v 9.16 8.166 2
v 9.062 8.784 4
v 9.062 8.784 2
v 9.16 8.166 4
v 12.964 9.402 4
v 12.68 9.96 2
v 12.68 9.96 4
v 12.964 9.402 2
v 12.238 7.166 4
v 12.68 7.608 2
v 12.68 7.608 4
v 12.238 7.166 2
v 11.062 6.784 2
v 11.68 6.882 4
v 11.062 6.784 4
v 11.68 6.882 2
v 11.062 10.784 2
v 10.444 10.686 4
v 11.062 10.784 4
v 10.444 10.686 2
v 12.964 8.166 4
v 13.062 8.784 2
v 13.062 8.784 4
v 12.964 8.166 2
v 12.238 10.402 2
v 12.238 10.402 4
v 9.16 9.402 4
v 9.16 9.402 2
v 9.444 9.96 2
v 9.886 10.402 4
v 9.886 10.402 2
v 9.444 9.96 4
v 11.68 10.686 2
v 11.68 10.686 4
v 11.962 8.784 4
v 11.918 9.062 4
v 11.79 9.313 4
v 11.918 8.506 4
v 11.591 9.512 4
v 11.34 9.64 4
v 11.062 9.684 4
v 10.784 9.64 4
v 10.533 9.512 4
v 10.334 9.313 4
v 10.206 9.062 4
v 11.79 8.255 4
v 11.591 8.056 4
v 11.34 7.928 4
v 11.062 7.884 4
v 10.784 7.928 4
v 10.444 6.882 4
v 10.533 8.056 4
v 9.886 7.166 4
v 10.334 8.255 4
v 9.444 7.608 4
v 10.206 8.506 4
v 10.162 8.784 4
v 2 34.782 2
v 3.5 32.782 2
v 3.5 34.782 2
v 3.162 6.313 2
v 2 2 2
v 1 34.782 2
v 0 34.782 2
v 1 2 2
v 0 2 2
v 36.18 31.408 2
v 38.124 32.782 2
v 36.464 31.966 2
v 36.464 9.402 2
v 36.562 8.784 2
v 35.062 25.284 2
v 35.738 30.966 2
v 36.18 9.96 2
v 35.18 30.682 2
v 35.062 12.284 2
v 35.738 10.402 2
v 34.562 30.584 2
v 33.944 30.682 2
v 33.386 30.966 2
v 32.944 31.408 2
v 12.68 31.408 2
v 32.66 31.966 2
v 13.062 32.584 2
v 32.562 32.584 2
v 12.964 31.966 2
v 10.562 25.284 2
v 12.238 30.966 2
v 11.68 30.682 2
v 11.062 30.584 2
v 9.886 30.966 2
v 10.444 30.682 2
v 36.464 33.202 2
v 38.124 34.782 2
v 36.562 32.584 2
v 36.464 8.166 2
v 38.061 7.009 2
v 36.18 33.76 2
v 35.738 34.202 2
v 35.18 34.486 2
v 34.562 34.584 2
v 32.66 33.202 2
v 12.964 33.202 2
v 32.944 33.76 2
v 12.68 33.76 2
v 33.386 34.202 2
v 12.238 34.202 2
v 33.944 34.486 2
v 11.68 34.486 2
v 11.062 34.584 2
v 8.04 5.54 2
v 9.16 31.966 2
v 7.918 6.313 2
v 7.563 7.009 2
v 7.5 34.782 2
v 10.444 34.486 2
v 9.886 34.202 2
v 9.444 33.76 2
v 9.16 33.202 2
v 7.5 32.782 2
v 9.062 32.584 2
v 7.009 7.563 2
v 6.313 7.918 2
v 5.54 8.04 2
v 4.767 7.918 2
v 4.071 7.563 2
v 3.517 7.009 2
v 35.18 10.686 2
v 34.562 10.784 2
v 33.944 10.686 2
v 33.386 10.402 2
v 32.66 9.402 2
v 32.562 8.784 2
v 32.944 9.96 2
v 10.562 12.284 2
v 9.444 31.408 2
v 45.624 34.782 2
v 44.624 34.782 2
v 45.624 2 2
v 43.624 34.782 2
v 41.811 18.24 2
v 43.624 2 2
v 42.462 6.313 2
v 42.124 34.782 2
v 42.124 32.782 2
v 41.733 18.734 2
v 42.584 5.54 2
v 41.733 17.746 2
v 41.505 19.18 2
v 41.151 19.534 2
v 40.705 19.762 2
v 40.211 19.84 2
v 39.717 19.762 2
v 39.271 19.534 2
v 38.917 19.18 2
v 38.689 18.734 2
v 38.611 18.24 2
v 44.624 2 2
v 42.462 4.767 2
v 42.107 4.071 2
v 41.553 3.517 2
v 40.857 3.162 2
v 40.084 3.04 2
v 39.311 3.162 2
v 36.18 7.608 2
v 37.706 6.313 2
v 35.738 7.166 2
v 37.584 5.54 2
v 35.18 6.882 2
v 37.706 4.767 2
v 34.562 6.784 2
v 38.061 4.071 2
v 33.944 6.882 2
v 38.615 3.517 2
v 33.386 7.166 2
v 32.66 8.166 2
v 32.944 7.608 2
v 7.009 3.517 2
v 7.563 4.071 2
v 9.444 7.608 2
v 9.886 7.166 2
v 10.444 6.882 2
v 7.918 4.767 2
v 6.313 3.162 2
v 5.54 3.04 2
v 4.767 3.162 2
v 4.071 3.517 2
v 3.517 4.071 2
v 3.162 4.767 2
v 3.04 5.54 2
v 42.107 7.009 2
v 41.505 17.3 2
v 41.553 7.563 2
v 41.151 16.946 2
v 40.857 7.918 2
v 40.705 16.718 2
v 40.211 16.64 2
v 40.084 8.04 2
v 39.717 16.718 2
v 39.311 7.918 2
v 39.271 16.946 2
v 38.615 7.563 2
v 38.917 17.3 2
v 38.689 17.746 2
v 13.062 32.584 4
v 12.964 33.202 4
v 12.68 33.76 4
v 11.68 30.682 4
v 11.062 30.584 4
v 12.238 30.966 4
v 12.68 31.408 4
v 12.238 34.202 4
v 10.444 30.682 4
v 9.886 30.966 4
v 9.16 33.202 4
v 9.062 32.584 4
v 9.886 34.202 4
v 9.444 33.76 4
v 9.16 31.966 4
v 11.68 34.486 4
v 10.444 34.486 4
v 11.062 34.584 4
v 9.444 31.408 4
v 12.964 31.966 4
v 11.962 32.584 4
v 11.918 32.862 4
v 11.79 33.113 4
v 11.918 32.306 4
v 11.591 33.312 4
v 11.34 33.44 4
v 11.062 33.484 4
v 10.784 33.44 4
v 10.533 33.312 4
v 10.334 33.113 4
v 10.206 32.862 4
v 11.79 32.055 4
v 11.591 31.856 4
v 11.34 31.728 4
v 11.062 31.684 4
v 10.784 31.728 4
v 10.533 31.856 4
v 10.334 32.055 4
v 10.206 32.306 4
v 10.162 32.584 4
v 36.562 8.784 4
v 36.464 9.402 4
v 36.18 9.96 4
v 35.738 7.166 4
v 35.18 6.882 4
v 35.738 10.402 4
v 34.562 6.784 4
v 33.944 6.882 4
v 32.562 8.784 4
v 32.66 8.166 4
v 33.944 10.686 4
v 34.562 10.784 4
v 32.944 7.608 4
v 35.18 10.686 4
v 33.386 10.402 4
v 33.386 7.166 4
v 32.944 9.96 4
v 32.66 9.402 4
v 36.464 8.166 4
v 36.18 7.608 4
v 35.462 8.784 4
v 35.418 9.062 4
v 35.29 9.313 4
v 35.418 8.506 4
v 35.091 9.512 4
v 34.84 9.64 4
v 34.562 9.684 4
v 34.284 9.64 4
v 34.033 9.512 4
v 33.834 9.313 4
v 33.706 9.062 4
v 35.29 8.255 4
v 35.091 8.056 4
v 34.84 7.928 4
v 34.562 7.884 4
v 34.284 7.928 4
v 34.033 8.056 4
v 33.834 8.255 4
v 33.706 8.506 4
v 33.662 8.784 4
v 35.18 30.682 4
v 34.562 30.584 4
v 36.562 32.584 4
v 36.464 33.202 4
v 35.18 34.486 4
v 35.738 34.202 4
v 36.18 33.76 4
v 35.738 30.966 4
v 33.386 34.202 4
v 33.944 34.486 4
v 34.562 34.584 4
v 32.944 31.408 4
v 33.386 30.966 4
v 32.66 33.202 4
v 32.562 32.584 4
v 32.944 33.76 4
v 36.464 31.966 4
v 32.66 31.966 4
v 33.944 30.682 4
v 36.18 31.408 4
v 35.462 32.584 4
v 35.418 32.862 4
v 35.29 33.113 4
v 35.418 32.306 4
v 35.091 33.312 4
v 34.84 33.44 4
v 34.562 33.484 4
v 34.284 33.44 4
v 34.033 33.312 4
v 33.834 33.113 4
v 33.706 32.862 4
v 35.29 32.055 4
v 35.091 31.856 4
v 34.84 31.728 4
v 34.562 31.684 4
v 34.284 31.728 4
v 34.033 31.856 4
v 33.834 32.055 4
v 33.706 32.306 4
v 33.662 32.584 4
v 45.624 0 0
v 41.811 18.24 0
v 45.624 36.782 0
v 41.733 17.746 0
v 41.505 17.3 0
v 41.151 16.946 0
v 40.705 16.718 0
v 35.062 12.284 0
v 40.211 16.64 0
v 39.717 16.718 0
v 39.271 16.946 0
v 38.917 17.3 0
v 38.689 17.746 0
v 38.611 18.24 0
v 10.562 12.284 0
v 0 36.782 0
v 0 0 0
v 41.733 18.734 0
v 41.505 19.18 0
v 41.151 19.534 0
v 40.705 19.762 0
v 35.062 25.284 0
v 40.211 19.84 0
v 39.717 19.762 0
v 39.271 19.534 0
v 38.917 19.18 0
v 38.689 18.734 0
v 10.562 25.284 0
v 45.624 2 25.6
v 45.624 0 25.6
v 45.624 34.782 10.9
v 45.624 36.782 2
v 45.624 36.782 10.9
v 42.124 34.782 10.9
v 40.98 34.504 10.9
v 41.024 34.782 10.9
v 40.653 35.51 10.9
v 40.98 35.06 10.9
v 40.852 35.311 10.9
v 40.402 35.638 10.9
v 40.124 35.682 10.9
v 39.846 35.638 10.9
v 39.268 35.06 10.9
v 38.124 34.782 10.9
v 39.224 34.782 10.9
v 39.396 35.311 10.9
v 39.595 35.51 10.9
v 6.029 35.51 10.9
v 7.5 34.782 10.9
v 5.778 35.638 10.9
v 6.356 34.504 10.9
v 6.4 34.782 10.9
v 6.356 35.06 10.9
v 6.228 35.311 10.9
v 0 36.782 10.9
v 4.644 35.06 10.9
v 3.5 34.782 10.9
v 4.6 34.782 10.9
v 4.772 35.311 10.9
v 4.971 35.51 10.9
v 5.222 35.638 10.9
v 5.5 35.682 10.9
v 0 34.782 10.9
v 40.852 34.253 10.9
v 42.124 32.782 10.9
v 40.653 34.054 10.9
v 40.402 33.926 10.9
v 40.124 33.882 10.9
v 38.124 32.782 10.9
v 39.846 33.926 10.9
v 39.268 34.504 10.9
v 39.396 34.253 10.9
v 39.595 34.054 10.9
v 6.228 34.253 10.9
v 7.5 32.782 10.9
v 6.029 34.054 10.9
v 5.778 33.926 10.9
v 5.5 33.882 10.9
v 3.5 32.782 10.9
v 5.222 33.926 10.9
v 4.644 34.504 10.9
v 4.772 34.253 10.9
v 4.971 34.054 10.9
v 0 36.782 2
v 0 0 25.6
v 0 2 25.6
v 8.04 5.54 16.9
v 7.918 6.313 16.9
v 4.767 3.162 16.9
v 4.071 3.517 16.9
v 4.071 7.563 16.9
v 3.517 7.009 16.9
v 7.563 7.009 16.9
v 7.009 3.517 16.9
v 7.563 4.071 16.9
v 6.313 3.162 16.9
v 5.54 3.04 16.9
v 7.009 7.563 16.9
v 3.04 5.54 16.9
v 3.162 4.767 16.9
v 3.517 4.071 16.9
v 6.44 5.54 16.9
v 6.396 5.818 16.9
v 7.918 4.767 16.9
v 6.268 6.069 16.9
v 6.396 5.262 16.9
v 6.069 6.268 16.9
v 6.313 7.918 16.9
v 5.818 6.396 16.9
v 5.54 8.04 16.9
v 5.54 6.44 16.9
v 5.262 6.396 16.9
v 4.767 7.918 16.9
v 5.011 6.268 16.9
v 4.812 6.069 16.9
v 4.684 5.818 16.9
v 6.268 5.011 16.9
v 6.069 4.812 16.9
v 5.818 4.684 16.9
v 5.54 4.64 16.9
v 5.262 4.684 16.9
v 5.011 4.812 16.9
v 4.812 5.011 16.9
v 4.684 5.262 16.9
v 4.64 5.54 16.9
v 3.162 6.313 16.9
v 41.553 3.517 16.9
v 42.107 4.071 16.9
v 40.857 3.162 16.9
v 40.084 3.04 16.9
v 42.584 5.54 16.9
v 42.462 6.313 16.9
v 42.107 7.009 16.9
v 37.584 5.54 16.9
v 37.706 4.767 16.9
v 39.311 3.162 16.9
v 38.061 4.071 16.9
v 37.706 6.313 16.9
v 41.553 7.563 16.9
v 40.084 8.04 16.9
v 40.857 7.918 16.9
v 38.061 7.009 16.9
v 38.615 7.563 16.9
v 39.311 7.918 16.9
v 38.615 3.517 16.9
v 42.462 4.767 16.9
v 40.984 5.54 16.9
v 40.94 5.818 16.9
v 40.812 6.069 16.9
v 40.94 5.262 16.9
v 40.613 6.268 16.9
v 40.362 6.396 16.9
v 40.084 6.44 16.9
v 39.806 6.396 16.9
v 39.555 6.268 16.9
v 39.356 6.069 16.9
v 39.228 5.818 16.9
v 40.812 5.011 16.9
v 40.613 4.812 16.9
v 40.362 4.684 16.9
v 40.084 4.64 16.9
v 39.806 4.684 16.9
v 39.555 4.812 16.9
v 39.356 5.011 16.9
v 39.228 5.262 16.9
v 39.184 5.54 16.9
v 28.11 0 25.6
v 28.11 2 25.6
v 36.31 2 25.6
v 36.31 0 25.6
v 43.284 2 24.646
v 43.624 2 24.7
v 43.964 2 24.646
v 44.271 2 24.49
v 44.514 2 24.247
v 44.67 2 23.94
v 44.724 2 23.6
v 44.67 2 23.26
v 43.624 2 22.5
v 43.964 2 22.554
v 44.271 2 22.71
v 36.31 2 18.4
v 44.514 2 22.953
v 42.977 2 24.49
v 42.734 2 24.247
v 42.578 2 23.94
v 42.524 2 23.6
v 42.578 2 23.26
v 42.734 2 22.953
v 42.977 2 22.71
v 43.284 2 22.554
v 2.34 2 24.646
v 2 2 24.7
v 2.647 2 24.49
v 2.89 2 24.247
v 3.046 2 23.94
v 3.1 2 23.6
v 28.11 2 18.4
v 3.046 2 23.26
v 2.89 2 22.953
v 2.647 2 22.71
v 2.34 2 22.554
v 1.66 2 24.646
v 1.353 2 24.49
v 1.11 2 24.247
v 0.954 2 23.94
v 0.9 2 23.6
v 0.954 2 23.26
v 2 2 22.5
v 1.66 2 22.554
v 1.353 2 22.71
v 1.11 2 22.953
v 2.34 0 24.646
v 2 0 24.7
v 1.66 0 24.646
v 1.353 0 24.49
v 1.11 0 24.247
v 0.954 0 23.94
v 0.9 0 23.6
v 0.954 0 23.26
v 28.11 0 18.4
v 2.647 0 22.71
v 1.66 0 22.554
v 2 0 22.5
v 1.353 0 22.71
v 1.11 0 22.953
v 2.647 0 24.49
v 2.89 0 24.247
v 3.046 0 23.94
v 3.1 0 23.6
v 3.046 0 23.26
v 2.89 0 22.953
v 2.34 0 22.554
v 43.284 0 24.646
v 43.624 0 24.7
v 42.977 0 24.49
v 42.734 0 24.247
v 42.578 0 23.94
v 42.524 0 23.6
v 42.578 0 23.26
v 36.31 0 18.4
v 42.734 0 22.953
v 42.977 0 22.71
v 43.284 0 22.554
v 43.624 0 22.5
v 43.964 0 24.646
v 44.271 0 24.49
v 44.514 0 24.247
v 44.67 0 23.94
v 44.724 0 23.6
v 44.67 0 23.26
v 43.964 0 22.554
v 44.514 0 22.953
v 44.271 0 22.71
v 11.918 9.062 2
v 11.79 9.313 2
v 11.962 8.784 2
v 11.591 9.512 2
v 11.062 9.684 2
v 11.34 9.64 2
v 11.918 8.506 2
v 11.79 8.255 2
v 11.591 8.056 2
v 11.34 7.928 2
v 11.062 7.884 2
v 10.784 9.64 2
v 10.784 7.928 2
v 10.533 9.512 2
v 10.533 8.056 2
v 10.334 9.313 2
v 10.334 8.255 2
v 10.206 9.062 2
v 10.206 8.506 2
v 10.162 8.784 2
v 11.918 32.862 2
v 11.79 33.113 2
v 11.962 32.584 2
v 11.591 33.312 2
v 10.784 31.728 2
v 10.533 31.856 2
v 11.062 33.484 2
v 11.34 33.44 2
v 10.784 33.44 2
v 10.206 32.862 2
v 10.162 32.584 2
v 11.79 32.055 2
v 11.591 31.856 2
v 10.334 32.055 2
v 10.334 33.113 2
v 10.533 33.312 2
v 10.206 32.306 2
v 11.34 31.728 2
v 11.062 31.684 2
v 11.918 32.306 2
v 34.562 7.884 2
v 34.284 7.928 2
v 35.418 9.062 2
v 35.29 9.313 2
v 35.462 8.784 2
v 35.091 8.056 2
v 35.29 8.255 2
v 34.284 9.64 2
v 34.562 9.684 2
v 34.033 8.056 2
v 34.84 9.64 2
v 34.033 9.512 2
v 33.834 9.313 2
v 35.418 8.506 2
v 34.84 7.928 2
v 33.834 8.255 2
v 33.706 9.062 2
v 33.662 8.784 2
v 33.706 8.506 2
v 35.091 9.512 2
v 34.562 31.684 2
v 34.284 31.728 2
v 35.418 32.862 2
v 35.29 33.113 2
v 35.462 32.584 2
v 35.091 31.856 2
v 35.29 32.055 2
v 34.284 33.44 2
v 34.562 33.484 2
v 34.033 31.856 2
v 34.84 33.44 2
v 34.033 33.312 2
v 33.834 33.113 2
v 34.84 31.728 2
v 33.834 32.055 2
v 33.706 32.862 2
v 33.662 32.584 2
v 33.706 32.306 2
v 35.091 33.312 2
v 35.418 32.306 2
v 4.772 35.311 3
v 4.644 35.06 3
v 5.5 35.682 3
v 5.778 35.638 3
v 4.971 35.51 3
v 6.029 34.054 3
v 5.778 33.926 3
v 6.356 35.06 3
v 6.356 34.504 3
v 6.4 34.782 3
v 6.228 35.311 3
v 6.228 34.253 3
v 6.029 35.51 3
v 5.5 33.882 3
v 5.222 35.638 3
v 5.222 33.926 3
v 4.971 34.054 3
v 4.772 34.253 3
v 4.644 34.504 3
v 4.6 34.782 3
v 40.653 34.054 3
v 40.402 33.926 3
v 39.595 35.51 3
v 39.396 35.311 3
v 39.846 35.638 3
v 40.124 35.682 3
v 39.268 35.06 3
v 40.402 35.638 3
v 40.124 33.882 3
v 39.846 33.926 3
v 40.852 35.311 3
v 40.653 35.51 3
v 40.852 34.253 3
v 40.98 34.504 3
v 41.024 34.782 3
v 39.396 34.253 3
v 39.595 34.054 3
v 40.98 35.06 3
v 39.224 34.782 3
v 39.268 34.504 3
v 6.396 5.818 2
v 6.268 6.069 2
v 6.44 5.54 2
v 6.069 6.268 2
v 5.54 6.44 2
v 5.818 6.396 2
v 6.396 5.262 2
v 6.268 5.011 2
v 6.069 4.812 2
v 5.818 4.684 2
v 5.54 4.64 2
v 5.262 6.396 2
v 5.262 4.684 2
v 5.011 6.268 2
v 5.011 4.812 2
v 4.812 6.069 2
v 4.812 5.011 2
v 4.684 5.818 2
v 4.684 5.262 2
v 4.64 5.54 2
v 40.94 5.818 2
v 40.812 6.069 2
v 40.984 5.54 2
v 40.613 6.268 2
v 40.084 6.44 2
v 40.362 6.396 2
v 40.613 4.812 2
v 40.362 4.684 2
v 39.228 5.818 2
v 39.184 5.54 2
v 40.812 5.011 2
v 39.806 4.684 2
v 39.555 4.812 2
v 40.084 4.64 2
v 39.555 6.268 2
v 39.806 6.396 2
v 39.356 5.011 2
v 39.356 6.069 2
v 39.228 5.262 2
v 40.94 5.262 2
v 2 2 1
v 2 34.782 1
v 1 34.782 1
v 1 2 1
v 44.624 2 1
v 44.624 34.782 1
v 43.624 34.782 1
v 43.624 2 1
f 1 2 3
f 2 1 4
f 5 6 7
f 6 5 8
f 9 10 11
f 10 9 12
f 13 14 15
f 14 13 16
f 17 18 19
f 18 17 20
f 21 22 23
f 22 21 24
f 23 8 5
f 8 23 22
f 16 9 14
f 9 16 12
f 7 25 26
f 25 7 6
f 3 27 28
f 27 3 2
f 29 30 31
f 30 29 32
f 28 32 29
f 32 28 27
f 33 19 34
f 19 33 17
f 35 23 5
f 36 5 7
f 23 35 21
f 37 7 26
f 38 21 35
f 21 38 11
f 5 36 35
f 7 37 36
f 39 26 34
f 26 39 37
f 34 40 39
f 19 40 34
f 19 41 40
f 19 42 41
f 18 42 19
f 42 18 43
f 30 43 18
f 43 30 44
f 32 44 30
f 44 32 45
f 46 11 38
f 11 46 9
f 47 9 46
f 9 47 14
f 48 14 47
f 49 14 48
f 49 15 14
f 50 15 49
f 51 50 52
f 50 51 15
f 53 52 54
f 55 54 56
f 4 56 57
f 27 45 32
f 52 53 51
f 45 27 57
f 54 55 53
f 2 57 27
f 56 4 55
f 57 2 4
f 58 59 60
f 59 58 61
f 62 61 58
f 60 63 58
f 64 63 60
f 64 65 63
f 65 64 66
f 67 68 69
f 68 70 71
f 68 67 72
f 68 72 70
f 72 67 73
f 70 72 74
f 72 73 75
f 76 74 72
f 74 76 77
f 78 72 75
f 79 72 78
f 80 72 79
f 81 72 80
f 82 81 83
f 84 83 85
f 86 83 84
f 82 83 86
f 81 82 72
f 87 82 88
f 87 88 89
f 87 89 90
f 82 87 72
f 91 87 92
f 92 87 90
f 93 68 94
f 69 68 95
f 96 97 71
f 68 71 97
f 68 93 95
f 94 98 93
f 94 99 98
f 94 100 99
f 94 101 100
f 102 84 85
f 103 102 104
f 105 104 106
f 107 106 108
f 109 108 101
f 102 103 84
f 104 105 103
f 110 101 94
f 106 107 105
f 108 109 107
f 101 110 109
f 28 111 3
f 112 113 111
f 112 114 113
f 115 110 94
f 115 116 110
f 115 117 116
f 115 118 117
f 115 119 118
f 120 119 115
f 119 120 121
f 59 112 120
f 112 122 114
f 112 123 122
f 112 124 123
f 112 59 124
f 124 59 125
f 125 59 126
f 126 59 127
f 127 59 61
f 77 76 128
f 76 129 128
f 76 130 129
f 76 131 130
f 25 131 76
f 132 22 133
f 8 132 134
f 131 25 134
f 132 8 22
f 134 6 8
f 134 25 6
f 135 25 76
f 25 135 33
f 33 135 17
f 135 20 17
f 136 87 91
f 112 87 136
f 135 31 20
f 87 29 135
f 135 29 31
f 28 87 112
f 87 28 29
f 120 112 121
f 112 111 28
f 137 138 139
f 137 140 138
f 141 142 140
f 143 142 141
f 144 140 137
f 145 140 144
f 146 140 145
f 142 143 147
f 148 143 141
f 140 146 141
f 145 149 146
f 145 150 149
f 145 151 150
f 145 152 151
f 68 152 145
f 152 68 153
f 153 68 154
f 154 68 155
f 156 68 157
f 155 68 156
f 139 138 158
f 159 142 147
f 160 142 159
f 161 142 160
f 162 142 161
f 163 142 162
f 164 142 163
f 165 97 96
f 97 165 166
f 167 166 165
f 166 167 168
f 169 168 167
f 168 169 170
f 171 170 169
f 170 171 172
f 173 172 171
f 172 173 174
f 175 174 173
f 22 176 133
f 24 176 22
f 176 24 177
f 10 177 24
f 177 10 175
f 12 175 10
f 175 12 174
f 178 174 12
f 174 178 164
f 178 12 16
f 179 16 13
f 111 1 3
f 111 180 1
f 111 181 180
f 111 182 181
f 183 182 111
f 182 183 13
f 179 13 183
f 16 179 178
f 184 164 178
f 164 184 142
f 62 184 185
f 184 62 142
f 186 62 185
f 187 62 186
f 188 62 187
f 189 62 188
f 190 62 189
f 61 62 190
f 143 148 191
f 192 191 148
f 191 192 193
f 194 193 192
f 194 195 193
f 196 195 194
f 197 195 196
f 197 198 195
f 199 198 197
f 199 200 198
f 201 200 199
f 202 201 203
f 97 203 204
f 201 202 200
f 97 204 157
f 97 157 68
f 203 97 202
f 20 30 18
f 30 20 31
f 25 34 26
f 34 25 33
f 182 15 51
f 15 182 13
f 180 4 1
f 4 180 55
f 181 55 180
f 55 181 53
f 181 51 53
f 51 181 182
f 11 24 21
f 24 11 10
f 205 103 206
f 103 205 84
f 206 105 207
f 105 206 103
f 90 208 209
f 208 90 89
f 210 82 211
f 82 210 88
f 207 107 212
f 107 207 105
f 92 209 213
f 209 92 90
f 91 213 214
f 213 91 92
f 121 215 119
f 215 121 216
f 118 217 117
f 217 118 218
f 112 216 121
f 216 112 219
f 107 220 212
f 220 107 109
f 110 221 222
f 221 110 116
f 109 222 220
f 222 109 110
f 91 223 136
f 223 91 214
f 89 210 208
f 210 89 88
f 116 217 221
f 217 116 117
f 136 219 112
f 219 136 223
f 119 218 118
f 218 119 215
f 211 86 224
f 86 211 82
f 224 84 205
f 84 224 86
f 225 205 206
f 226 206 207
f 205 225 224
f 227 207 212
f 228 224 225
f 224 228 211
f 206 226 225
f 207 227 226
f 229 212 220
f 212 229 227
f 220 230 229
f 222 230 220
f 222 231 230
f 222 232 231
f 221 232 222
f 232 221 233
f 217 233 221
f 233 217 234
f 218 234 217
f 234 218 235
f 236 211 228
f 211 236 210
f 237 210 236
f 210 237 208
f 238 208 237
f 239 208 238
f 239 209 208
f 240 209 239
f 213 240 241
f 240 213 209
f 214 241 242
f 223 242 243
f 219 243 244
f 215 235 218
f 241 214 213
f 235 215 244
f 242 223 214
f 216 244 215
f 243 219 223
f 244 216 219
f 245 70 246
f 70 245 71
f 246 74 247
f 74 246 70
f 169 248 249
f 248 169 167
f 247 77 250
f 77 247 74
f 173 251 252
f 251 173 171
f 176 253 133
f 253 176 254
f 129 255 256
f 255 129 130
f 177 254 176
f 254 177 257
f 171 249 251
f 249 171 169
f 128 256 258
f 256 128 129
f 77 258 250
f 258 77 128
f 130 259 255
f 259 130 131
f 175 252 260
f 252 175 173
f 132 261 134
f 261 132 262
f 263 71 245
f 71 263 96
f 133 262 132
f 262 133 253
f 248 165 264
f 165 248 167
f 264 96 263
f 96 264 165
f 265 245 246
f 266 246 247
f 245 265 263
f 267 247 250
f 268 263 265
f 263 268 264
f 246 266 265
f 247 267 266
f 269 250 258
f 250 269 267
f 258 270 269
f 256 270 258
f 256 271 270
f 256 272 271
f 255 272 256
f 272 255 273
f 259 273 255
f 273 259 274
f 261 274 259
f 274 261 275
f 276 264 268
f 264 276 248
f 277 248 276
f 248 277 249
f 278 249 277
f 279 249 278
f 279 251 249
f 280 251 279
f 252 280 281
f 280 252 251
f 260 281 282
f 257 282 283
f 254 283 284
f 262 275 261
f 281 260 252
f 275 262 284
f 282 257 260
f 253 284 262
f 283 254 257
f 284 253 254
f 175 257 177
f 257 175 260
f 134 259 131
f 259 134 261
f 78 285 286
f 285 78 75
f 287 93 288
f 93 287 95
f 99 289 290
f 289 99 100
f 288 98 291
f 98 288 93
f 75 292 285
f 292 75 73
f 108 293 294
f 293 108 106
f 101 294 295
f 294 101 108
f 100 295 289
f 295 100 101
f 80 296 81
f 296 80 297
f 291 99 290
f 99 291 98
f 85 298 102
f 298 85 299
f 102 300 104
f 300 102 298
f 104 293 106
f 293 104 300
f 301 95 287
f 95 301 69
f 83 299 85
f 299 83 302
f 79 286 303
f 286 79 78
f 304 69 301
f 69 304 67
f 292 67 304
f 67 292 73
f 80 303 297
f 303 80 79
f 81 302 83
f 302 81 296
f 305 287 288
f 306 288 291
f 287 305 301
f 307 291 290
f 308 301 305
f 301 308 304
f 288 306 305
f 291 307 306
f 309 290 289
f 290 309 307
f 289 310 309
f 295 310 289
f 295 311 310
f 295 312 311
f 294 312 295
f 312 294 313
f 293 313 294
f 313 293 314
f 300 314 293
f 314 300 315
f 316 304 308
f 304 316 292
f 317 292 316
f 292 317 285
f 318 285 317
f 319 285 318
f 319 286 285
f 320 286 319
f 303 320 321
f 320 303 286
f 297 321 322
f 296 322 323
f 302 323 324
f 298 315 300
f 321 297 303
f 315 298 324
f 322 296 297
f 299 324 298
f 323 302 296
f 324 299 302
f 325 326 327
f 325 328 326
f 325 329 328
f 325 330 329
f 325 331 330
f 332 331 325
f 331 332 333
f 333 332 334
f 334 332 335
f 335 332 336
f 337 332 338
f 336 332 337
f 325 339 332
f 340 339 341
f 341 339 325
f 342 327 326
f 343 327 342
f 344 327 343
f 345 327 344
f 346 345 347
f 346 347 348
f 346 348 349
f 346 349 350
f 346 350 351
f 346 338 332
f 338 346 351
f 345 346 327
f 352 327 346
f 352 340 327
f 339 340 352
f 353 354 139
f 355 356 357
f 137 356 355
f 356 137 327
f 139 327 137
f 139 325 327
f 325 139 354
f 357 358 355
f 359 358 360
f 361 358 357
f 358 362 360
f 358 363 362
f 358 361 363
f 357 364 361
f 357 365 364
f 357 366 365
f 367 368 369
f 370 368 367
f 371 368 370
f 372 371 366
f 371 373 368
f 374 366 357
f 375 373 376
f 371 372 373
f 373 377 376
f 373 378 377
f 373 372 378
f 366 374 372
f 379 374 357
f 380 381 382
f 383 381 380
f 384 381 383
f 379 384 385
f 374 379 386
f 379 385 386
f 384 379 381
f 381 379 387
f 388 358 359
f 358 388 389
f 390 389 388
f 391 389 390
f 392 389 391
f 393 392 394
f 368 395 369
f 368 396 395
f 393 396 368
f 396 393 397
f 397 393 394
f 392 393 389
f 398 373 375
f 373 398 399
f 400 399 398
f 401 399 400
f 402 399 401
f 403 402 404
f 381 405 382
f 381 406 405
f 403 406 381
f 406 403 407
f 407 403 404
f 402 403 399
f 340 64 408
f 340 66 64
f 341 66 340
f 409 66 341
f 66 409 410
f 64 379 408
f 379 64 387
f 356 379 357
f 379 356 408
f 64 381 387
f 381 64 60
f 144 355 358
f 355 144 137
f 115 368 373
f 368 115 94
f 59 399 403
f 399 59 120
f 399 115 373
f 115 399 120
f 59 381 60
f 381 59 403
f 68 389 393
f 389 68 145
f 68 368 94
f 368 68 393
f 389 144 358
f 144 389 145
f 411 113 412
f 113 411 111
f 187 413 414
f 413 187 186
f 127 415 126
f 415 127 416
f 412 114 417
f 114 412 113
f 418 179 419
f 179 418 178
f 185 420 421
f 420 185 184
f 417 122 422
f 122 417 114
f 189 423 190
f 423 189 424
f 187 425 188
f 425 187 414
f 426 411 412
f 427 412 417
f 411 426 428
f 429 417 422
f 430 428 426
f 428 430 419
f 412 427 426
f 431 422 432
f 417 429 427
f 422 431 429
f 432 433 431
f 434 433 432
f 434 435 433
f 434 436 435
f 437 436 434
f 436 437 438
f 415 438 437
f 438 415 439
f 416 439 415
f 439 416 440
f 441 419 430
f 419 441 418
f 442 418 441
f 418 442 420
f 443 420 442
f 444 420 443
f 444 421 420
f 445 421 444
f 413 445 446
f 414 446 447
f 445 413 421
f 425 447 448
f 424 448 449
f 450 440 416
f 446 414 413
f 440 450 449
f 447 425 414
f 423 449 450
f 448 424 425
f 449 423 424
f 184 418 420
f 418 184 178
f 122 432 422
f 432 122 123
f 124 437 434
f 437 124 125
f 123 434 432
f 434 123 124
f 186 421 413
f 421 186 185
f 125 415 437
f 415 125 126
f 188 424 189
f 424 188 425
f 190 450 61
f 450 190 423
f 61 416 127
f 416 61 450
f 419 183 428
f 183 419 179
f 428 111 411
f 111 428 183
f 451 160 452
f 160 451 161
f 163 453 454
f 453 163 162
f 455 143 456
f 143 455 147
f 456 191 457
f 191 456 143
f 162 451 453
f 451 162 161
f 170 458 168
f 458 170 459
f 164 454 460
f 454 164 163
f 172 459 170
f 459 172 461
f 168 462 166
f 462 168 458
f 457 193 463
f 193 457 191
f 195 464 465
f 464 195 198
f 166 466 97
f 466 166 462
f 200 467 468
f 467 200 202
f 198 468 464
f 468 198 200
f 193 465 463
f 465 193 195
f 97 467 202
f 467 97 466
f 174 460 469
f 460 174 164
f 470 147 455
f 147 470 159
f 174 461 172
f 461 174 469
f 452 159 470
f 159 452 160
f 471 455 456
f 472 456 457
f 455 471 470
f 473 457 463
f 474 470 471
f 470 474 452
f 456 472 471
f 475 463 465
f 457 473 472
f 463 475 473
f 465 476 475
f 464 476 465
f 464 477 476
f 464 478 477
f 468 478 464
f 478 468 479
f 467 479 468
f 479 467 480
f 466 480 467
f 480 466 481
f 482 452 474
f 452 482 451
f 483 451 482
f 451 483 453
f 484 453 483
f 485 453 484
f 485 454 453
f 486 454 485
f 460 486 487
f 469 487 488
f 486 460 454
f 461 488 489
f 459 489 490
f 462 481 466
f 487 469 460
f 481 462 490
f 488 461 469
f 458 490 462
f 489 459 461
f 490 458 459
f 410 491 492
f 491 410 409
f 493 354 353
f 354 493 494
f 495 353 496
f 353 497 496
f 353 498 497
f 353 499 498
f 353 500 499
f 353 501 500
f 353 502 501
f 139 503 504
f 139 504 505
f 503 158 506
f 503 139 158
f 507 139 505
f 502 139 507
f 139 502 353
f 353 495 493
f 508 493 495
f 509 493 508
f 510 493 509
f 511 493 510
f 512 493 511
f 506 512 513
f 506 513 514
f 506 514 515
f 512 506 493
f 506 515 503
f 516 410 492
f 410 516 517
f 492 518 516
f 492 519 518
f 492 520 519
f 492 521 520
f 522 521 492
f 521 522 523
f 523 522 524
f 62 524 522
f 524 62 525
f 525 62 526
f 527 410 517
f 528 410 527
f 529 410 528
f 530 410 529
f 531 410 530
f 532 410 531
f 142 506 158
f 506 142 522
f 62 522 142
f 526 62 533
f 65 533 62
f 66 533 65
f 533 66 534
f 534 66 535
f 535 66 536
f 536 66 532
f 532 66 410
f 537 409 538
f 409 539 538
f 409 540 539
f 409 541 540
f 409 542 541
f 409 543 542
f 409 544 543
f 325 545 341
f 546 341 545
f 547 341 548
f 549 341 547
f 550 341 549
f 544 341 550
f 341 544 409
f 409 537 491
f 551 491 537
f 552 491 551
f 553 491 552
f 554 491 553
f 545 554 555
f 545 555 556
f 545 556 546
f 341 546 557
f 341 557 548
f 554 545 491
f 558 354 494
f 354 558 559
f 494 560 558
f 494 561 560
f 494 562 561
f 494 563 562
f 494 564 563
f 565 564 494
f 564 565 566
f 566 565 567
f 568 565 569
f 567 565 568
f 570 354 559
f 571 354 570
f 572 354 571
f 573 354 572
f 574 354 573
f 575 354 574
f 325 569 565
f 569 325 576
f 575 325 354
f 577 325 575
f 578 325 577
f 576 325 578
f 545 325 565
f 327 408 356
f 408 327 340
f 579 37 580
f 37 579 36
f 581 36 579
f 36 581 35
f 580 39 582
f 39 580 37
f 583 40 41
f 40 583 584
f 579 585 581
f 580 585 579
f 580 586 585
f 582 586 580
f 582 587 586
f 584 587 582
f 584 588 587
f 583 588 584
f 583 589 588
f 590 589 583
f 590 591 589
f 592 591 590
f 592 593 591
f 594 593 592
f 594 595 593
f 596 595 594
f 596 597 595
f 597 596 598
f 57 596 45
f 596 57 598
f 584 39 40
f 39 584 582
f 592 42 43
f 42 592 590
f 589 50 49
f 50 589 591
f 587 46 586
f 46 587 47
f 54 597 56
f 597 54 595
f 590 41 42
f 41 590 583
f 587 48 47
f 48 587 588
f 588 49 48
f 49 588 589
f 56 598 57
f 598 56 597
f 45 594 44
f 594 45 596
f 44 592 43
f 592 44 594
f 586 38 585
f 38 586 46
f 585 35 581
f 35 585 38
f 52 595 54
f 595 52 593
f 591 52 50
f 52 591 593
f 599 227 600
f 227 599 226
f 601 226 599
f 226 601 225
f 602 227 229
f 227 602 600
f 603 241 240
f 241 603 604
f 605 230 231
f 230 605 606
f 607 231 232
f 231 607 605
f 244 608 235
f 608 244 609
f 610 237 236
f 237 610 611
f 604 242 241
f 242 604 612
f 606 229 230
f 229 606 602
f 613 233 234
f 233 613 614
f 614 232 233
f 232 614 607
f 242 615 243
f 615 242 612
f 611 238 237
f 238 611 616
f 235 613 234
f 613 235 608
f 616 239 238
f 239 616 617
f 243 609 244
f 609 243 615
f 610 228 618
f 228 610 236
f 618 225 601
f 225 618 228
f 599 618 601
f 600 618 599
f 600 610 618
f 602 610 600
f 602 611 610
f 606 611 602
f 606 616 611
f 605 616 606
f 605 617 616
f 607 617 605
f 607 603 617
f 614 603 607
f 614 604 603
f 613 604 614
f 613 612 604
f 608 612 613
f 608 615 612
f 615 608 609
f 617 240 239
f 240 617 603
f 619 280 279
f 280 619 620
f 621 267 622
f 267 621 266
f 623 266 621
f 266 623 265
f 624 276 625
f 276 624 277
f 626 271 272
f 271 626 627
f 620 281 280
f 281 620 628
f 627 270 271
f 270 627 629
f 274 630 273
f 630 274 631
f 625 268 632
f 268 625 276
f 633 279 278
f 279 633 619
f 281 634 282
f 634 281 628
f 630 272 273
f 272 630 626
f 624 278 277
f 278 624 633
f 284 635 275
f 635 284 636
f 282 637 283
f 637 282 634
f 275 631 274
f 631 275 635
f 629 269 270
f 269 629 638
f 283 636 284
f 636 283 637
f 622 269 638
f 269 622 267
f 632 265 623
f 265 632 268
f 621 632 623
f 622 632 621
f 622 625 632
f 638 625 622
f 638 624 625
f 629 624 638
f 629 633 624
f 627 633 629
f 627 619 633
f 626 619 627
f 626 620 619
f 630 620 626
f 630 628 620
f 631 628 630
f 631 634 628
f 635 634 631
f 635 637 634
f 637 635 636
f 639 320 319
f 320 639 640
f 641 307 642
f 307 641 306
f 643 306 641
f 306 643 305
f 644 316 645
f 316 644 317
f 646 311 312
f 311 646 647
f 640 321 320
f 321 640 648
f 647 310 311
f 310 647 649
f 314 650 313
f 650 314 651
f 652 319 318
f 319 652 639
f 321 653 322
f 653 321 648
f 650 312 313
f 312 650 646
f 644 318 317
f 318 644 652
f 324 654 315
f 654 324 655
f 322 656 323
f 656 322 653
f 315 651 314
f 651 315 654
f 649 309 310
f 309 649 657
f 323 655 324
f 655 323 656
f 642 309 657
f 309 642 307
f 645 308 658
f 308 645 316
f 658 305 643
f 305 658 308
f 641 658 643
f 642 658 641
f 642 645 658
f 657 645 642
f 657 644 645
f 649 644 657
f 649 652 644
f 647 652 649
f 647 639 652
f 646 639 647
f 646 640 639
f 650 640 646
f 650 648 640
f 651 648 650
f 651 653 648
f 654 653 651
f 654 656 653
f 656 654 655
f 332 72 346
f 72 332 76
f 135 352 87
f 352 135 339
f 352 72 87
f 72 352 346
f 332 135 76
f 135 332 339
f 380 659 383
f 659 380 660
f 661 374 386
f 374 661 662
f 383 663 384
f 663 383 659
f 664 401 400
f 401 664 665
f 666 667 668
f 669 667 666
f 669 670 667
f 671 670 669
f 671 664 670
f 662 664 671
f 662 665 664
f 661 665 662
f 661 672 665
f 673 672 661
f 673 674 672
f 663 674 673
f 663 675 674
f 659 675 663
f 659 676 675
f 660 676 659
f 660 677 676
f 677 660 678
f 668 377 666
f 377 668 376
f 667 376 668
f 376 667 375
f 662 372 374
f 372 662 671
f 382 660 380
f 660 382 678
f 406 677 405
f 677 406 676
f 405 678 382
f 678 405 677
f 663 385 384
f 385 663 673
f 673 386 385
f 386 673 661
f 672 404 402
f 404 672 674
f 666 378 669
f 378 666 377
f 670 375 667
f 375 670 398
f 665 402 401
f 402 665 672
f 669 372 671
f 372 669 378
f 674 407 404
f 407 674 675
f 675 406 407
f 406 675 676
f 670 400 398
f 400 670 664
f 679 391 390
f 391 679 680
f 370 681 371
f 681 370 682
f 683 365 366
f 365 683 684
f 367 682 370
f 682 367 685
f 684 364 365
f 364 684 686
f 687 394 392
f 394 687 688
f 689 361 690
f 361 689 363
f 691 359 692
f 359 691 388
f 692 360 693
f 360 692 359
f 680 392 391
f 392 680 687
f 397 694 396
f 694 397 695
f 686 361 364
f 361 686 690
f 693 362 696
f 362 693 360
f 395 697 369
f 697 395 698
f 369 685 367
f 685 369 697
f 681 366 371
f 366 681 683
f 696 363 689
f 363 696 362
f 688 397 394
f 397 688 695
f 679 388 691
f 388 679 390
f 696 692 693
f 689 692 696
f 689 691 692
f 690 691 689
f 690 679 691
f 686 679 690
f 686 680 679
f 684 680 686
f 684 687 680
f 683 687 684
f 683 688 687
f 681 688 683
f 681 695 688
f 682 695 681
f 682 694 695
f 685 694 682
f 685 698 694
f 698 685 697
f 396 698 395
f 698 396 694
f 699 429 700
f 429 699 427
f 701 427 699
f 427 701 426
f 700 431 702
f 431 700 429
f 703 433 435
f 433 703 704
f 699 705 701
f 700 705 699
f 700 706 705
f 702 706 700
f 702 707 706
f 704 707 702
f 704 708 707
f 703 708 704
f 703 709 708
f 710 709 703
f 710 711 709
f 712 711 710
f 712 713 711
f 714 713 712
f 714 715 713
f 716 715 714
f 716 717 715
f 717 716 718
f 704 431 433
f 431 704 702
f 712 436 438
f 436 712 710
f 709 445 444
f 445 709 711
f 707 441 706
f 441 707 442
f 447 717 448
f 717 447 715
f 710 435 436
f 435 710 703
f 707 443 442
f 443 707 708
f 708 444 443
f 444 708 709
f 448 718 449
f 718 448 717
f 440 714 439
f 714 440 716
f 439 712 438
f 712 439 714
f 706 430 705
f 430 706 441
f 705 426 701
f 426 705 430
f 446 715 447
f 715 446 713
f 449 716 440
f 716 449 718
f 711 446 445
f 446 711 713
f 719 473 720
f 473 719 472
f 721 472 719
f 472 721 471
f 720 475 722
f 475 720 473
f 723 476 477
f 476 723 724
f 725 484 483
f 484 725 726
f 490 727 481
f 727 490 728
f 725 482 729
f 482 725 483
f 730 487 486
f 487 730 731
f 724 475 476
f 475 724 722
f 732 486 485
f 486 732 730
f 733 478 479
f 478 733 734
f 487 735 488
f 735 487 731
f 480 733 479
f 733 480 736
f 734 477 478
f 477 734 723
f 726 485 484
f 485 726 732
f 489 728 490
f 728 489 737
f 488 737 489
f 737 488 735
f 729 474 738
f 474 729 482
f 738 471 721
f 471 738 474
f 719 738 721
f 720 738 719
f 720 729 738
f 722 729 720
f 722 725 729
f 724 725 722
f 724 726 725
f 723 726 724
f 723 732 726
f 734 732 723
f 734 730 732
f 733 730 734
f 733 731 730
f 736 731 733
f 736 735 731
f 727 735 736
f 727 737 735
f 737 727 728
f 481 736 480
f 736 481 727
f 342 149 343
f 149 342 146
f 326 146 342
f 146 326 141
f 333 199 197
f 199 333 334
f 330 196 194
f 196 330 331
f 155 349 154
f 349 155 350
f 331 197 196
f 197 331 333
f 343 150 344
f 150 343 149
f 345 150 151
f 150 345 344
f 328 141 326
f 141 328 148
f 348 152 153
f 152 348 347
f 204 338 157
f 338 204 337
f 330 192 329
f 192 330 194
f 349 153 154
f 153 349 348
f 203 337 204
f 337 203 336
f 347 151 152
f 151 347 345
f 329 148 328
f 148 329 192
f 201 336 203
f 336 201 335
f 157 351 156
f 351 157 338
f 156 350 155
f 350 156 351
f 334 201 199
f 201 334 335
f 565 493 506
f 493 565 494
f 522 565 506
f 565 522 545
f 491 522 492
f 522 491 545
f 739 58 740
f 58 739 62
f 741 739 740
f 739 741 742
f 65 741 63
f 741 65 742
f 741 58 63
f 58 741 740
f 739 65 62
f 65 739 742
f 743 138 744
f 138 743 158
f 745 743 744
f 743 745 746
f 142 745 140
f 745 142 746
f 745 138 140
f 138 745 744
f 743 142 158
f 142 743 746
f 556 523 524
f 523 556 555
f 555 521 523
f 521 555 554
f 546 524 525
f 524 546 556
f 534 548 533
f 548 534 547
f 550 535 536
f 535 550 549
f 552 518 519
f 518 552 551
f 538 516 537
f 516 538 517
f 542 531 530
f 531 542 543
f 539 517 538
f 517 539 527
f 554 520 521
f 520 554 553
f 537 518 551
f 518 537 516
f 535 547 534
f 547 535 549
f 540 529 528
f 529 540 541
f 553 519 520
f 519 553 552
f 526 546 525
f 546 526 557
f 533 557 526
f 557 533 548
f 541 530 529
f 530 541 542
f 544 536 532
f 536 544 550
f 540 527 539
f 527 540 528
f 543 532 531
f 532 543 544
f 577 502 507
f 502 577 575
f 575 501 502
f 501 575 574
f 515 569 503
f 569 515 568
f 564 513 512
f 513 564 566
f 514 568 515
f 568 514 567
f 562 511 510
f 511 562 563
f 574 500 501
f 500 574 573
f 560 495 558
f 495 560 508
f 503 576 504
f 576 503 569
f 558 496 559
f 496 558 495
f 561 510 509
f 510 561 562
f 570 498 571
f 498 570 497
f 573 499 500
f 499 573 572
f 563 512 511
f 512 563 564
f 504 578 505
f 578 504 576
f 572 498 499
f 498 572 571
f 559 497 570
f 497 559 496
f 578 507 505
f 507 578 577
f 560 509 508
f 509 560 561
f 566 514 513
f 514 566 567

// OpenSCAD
// file: settings.scad
/*
 * SPDX-FileCopyrightText: 2024 Rafael G. Martins <rafael@rafaelmartins.eng.br>
 * SPDX-License-Identifier: CERN-OHL-S-2.0
 */

include <../lib/ssd1306.scad>

screw_d = 2;
screw_h = 8;
thickness = 2;
gap = 0;

front_screw_padding = 3.5;

pcb_base_d = 5;
pcb_base_screw_d = 1.8;
pcb_screw_padding = 2.54;
pcb_thickness = 1.6;

pcb_padding_x = thickness + 1;
pcb_padding_y = thickness + 1;

display_pcb_length = 39.624;
display_pcb_width = 33.782;

display_pcb0_x = pcb_padding_x;
display_pcb0_y = pcb_padding_y;

display_length = display_pcb_length + 2 * pcb_padding_x;
display_width = display_pcb_width + pcb_padding_y;

switches_pcb_length = 84.582;
switches_pcb_width = 45.974;

switches_length = switches_pcb_length + 2 * pcb_padding_x;
switches_width = switches_pcb_width + 2 * pcb_padding_y;

switches_pcb_base_distance_x = 39.751;
switches_pcb_base_distance_y = 20.447;

oled_socket_height = 8.5;
oled_pin0_y = 5.334;
oled0_x = (display_length - ssd1306_pcb_base_spacing_x) / 2;
oled0_y = display_pcb0_y + oled_pin0_y + ssd1306_pin_distance_y;

display_pcb_base_distance = 34.544;
display_pcb_base_height = 2.8 + oled_socket_height + ssd1306_pcb_thickness + ssd1306_pcb_base_height;

switches_pcb_base_height = 6 - thickness;

usb_height = 4.4;
usb_width = 8.2;
usb_distance_x = pcb_padding_x + 29.210 - usb_width / 2;
usb_distance_z = thickness + display_pcb_base_height + pcb_thickness - 0.1;

display_height = usb_distance_z + usb_height + 0.8 + thickness;
display_height_in = display_pcb_base_height - switches_pcb_base_height - thickness;

switches_height = display_height - display_pcb_base_height + switches_pcb_base_height;

led0_x = 37.211;
led0_y = 15.24;
led_d = 3.2;

key_dim = 16;
key_distance = 19.304;
key0_x = 13.335 - key_dim / 2;
key0_y = key0_x;
// file: ../lib/ssd1306.scad
/*
 * SPDX-FileCopyrightText: 2022-2024 Rafael G. Martins <rafael@rafaelmartins.eng.br>
 * SPDX-License-Identifier: CERN-OHL-S-2.0
 */

ssd1306_pcb_thickness = 1.6;
ssd1306_pcb_base_height = 2;
ssd1306_pcb_base_d = 4;
ssd1306_pcb_base_screw_d = 1.8;
ssd1306_pcb_base_spacing_x = 23.5;
ssd1306_pcb_base_spacing_y = 23.8;
ssd1306_screen_width = 24.5;
ssd1306_screen_height = 13;
ssd1306_screen_distance_x = (ssd1306_pcb_base_spacing_x - ssd1306_screen_width) / 2;
ssd1306_screen_distance_y = 3.5;
ssd1306_pin_distance_y = 0.45;


module ssd1306_add(thickness) {
    translate([-ssd1306_pcb_base_d / 2, -ssd1306_pcb_base_d / 2, 0])
        cube([ssd1306_pcb_base_spacing_x + ssd1306_pcb_base_d,
              ssd1306_pcb_base_spacing_y + ssd1306_pcb_base_d,
              thickness]);

    for(i=[0:1])
        for(j=[0:1])
            translate([i * ssd1306_pcb_base_spacing_x, j * ssd1306_pcb_base_spacing_y, thickness])
                cylinder(ssd1306_pcb_base_height, d=ssd1306_pcb_base_d, $fn=20);
}


module ssd1306_sub(thickness) {
    translate([ssd1306_screen_distance_x, ssd1306_screen_distance_y, 0])
        cube([ssd1306_screen_width, ssd1306_screen_height, thickness]);

    for(i=[0:1])
        for(j=[0:1])
            translate([i * ssd1306_pcb_base_spacing_x, j * ssd1306_pcb_base_spacing_y, thickness])
                cylinder(ssd1306_pcb_base_height, d=ssd1306_pcb_base_screw_d, $fn=20);
}
// file: ../lib/screw-base.scad
// SPDX-FileCopyrightText: 2022-2024 Rafael G. Martins <rafael@rafaelmartins.eng.br>
// SPDX-License-Identifier: CERN-OHL-S-2.0

function screw_base_dim(screw_d) = screw_d + 2;
function screw_base_height(screw_h) = screw_h + 1;


module screw_base_add(screw_d, screw_h) {
    cube([screw_base_dim(screw_d), screw_base_dim(screw_d), screw_base_height(screw_h)]);
}


module screw_base_sub(screw_d, screw_h) {
    translate([screw_base_dim(screw_d) / 2, screw_base_dim(screw_d) / 2, 0])
        cylinder(screw_h, d=screw_d - 0.2, $fn=20);
}
// main file
/*
 * SPDX-FileCopyrightText: 2024 Rafael G. Martins <rafael@rafaelmartins.eng.br>
 * SPDX-License-Identifier: CERN-OHL-S-2.0
 */

include <../lib/screw-base.scad>
include <../lib/ssd1306.scad>
include <settings.scad>


difference() {
    union() {
        cube([display_length, thickness, display_height]);
        cube([display_length, display_width, thickness]);

        translate([oled0_x, oled0_y, 0])
            ssd1306_add(thickness);

        translate([0, display_width - thickness, thickness]) {
            cube([display_length, thickness, display_height_in]);

            translate([front_screw_padding, -screw_base_dim(screw_d) / 2,
                       screw_base_height(display_height_in - 1)])
                rotate([180, 0, 90])
                    screw_base_add(screw_d, display_height_in - 1);
            translate([display_length - front_screw_padding - screw_base_dim(screw_d),
                       -screw_base_dim(screw_d) / 2, screw_base_height(display_height_in - 1)])
                rotate([180, 0, 90])
                    screw_base_add(screw_d, display_height_in - 1);
        }

        translate([display_pcb0_x, display_pcb0_y, 0]) {
            translate([pcb_screw_padding, pcb_screw_padding, thickness]) {
                cylinder(h=display_pcb_base_height, d=pcb_base_d, $fn=20);
                translate([display_pcb_base_distance, 0, 0])
                    cylinder(h=display_pcb_base_height, d=pcb_base_d, $fn=20);
            }
        }
    }

    translate([oled0_x, oled0_y, 0])
        ssd1306_sub(thickness);

    translate([0, display_width - thickness, thickness]) {
        translate([front_screw_padding, -screw_base_dim(screw_d) / 2,
                   screw_base_height(display_height_in - 1)])
            rotate([180, 0, 90])
                screw_base_sub(screw_d, display_height_in - 1);
        translate([display_length - front_screw_padding - screw_base_dim(screw_d),
                   -screw_base_dim(screw_d) / 2, screw_base_height(display_height_in - 1)])
            rotate([180, 0, 90])
                screw_base_sub(screw_d, display_height_in - 1);
    }

    translate([display_pcb0_x, display_pcb0_y, 0]) {
        translate([pcb_screw_padding, pcb_screw_padding, thickness]) {
            cylinder(h=display_pcb_base_height, d=pcb_base_screw_d, $fn=20);
            translate([display_pcb_base_distance, 0, 0])
                cylinder(h=display_pcb_base_height, d=pcb_base_screw_d, $fn=20);
        }

        translate([led0_x, led0_y, 0])
            cylinder(h=thickness, d=led_d, $fn=20);
    }

    translate([usb_distance_x, 0, usb_distance_z])
        cube([usb_width, thickness, display_height - usb_distance_z]);

    translate([(thickness - gap) / 2, thickness, thickness / 2])
        cube([thickness / 2 + gap, display_width - 2 * thickness, thickness / 2]);
    translate([display_length - thickness - gap / 2, thickness, thickness / 2])
        cube([thickness / 2 + gap, display_width - 2 * thickness, thickness / 2]);

    translate([screw_base_dim(screw_d) / 2, 0, display_height - screw_base_dim(screw_d) / 2])
        rotate([-90, 0, 0])
            cylinder(h=thickness, d=screw_d * 1.1, $fn=20);
    translate([display_length - screw_base_dim(screw_d) / 2, 0,
               display_height - screw_base_dim(screw_d) / 2])
        rotate([-90, 0, 0])
            cylinder(h=thickness, d=screw_d * 1.1, $fn=20);
}
